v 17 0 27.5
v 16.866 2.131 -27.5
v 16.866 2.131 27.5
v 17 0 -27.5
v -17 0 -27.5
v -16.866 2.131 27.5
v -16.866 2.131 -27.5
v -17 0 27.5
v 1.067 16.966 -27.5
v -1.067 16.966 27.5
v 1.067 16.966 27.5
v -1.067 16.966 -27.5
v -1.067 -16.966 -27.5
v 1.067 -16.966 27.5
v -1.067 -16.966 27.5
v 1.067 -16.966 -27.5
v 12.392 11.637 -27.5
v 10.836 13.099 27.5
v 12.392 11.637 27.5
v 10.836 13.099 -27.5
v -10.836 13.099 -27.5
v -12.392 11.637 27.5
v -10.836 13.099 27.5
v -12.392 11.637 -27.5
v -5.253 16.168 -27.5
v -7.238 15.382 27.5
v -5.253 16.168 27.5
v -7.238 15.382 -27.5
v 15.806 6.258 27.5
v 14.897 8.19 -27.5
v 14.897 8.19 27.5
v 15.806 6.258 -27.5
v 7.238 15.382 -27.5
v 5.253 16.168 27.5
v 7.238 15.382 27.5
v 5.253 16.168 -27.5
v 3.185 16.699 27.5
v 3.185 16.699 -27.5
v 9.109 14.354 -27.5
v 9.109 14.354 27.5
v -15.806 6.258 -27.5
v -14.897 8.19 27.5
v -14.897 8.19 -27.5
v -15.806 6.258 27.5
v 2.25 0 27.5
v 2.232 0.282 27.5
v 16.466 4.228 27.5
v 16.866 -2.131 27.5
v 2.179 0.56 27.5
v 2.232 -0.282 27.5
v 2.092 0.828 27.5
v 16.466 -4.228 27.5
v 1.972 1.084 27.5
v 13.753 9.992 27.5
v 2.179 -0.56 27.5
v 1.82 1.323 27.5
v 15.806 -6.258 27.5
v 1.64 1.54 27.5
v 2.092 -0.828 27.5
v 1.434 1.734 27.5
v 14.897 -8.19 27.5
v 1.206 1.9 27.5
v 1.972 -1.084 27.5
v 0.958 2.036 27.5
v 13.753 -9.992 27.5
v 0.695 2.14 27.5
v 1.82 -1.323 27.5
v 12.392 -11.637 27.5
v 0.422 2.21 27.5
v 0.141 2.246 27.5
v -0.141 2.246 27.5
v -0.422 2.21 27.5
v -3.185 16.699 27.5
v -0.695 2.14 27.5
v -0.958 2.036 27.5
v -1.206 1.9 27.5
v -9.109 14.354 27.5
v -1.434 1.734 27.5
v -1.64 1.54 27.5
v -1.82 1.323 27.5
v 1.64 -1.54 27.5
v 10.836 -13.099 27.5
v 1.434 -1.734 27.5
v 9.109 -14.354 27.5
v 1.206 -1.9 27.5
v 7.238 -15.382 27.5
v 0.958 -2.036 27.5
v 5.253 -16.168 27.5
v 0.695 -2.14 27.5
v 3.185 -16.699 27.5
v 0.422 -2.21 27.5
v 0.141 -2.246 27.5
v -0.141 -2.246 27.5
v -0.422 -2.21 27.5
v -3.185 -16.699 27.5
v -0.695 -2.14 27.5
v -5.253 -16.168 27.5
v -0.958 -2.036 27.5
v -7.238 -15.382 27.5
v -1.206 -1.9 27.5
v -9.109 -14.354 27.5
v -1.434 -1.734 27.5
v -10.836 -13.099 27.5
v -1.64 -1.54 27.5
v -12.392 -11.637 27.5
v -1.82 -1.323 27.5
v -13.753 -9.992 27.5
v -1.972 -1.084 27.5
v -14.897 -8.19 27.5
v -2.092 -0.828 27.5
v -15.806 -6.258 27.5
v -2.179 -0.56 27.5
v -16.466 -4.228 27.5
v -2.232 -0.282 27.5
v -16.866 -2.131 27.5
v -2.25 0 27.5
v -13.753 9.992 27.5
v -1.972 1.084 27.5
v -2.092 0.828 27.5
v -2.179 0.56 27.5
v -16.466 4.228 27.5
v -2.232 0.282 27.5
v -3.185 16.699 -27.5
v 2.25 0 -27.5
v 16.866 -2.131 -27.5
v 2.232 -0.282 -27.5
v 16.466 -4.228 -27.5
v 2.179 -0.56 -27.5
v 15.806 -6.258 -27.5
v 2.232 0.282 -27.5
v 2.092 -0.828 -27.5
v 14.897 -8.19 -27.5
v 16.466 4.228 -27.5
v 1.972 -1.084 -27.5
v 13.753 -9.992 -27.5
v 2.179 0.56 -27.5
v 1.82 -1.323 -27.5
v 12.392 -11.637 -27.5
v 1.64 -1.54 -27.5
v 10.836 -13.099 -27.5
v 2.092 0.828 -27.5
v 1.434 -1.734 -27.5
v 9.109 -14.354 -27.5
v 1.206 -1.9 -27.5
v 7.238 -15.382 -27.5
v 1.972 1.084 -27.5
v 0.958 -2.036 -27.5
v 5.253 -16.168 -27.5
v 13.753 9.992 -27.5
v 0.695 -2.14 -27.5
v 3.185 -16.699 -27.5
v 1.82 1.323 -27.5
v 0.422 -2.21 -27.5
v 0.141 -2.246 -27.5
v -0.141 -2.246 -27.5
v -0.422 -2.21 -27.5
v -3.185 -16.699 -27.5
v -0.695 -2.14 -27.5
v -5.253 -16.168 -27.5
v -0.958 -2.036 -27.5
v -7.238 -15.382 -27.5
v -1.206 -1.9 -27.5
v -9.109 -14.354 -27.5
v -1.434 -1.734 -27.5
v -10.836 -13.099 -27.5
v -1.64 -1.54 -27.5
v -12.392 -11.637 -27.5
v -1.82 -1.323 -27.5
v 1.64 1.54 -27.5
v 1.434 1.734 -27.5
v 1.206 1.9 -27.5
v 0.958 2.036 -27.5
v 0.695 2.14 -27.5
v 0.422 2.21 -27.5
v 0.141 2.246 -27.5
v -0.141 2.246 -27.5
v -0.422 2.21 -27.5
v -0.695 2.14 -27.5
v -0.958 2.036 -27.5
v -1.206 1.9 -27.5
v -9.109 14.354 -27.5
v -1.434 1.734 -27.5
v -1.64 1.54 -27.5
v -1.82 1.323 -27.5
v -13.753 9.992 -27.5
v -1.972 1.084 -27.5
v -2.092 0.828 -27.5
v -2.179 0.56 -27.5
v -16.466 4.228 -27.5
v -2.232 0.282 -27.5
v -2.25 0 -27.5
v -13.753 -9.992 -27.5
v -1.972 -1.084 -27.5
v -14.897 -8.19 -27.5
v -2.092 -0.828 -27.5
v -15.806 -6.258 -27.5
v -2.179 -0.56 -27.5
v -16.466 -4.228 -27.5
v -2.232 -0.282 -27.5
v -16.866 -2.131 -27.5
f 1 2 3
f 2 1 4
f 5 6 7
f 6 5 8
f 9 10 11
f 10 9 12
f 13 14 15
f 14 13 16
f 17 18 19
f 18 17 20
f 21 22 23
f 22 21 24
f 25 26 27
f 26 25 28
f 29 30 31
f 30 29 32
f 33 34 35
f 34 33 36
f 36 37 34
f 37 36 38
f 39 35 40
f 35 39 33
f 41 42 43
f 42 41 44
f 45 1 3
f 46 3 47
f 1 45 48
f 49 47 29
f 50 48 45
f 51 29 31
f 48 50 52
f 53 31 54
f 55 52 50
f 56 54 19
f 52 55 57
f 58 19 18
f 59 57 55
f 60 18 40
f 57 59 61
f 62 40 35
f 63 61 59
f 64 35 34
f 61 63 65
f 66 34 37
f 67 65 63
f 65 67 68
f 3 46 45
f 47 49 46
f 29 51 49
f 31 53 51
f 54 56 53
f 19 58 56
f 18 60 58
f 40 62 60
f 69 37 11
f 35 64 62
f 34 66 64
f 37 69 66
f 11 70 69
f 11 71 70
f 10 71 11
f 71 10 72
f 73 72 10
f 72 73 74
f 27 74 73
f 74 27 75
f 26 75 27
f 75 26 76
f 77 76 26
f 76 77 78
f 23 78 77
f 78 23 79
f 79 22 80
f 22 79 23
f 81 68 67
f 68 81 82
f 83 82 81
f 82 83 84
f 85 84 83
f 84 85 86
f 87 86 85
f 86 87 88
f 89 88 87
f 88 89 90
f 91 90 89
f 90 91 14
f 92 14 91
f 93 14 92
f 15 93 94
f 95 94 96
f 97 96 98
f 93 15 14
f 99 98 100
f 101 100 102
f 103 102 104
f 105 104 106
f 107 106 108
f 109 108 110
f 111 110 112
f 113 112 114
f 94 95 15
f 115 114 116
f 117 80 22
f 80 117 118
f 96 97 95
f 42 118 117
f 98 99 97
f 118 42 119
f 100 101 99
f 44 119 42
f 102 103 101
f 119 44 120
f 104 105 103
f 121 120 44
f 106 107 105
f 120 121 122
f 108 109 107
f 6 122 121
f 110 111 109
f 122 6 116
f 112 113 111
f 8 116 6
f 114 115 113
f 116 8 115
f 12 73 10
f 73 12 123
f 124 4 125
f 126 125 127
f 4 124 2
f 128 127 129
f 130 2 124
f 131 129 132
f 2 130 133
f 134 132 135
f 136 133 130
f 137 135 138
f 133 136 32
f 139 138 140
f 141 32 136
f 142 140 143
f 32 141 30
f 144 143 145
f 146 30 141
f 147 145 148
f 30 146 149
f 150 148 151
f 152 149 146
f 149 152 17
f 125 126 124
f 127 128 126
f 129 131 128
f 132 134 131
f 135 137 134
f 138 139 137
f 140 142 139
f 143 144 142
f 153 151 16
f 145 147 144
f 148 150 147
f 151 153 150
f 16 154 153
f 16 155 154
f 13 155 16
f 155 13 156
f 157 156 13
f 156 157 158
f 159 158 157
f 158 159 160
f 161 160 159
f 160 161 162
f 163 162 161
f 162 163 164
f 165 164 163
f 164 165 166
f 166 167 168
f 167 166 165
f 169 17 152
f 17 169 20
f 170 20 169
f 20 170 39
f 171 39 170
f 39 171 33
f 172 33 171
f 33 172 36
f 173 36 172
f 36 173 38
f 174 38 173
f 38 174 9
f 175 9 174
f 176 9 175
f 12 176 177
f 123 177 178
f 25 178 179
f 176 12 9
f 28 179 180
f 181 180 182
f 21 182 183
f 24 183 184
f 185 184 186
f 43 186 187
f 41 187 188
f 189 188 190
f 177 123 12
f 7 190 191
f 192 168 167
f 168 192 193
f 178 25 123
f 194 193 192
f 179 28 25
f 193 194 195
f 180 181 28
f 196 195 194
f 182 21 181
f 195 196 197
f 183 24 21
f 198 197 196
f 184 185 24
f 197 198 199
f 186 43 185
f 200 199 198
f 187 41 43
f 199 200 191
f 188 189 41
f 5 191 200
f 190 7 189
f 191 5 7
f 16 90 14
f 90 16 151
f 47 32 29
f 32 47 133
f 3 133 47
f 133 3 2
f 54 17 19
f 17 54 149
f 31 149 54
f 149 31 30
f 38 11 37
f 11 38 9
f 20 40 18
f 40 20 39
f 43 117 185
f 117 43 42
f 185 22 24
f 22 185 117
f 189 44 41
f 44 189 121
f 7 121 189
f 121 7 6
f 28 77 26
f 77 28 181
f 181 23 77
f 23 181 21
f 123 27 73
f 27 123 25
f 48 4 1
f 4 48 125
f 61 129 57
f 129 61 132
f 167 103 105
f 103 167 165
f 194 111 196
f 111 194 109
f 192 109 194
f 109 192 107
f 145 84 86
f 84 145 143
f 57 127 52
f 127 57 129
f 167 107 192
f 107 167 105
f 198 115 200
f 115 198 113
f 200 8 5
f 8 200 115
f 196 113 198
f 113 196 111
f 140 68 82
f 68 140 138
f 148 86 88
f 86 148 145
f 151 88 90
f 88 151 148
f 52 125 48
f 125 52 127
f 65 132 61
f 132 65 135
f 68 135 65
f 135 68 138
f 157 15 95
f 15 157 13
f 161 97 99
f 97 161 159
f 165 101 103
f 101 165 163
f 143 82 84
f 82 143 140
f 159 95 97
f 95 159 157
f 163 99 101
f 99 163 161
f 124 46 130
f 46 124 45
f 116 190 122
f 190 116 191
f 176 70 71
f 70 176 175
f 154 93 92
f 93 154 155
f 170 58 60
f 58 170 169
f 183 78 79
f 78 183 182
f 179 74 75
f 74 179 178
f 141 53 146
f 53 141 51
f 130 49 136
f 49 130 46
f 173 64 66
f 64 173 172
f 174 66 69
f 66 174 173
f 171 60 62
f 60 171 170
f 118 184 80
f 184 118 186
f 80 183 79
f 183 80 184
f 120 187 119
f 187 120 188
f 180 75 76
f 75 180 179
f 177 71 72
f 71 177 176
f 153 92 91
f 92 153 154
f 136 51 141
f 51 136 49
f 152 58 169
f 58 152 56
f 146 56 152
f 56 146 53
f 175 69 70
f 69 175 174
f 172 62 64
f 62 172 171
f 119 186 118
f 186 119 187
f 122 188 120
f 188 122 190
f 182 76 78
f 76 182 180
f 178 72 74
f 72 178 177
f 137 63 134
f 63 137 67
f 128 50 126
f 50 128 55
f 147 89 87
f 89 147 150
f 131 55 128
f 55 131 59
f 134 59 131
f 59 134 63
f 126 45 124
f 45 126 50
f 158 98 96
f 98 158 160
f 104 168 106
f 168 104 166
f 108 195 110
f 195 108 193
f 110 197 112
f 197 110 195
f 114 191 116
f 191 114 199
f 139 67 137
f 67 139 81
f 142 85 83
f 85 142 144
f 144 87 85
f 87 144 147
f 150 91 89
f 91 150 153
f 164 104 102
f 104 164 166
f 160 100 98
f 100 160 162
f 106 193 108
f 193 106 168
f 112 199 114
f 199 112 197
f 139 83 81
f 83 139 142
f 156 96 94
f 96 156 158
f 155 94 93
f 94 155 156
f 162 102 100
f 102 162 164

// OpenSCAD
$fn = 50;


difference() {
	union() {
		translate(v = [0, 0, -27.5000000000]) {
			cylinder(h = 55, r = 17.0000000000);
		}
	}
	union() {
		translate(v = [0, 0, -100.0000000000]) {
			cylinder(h = 200, r = 2.2500000000);
		}
	}
}
